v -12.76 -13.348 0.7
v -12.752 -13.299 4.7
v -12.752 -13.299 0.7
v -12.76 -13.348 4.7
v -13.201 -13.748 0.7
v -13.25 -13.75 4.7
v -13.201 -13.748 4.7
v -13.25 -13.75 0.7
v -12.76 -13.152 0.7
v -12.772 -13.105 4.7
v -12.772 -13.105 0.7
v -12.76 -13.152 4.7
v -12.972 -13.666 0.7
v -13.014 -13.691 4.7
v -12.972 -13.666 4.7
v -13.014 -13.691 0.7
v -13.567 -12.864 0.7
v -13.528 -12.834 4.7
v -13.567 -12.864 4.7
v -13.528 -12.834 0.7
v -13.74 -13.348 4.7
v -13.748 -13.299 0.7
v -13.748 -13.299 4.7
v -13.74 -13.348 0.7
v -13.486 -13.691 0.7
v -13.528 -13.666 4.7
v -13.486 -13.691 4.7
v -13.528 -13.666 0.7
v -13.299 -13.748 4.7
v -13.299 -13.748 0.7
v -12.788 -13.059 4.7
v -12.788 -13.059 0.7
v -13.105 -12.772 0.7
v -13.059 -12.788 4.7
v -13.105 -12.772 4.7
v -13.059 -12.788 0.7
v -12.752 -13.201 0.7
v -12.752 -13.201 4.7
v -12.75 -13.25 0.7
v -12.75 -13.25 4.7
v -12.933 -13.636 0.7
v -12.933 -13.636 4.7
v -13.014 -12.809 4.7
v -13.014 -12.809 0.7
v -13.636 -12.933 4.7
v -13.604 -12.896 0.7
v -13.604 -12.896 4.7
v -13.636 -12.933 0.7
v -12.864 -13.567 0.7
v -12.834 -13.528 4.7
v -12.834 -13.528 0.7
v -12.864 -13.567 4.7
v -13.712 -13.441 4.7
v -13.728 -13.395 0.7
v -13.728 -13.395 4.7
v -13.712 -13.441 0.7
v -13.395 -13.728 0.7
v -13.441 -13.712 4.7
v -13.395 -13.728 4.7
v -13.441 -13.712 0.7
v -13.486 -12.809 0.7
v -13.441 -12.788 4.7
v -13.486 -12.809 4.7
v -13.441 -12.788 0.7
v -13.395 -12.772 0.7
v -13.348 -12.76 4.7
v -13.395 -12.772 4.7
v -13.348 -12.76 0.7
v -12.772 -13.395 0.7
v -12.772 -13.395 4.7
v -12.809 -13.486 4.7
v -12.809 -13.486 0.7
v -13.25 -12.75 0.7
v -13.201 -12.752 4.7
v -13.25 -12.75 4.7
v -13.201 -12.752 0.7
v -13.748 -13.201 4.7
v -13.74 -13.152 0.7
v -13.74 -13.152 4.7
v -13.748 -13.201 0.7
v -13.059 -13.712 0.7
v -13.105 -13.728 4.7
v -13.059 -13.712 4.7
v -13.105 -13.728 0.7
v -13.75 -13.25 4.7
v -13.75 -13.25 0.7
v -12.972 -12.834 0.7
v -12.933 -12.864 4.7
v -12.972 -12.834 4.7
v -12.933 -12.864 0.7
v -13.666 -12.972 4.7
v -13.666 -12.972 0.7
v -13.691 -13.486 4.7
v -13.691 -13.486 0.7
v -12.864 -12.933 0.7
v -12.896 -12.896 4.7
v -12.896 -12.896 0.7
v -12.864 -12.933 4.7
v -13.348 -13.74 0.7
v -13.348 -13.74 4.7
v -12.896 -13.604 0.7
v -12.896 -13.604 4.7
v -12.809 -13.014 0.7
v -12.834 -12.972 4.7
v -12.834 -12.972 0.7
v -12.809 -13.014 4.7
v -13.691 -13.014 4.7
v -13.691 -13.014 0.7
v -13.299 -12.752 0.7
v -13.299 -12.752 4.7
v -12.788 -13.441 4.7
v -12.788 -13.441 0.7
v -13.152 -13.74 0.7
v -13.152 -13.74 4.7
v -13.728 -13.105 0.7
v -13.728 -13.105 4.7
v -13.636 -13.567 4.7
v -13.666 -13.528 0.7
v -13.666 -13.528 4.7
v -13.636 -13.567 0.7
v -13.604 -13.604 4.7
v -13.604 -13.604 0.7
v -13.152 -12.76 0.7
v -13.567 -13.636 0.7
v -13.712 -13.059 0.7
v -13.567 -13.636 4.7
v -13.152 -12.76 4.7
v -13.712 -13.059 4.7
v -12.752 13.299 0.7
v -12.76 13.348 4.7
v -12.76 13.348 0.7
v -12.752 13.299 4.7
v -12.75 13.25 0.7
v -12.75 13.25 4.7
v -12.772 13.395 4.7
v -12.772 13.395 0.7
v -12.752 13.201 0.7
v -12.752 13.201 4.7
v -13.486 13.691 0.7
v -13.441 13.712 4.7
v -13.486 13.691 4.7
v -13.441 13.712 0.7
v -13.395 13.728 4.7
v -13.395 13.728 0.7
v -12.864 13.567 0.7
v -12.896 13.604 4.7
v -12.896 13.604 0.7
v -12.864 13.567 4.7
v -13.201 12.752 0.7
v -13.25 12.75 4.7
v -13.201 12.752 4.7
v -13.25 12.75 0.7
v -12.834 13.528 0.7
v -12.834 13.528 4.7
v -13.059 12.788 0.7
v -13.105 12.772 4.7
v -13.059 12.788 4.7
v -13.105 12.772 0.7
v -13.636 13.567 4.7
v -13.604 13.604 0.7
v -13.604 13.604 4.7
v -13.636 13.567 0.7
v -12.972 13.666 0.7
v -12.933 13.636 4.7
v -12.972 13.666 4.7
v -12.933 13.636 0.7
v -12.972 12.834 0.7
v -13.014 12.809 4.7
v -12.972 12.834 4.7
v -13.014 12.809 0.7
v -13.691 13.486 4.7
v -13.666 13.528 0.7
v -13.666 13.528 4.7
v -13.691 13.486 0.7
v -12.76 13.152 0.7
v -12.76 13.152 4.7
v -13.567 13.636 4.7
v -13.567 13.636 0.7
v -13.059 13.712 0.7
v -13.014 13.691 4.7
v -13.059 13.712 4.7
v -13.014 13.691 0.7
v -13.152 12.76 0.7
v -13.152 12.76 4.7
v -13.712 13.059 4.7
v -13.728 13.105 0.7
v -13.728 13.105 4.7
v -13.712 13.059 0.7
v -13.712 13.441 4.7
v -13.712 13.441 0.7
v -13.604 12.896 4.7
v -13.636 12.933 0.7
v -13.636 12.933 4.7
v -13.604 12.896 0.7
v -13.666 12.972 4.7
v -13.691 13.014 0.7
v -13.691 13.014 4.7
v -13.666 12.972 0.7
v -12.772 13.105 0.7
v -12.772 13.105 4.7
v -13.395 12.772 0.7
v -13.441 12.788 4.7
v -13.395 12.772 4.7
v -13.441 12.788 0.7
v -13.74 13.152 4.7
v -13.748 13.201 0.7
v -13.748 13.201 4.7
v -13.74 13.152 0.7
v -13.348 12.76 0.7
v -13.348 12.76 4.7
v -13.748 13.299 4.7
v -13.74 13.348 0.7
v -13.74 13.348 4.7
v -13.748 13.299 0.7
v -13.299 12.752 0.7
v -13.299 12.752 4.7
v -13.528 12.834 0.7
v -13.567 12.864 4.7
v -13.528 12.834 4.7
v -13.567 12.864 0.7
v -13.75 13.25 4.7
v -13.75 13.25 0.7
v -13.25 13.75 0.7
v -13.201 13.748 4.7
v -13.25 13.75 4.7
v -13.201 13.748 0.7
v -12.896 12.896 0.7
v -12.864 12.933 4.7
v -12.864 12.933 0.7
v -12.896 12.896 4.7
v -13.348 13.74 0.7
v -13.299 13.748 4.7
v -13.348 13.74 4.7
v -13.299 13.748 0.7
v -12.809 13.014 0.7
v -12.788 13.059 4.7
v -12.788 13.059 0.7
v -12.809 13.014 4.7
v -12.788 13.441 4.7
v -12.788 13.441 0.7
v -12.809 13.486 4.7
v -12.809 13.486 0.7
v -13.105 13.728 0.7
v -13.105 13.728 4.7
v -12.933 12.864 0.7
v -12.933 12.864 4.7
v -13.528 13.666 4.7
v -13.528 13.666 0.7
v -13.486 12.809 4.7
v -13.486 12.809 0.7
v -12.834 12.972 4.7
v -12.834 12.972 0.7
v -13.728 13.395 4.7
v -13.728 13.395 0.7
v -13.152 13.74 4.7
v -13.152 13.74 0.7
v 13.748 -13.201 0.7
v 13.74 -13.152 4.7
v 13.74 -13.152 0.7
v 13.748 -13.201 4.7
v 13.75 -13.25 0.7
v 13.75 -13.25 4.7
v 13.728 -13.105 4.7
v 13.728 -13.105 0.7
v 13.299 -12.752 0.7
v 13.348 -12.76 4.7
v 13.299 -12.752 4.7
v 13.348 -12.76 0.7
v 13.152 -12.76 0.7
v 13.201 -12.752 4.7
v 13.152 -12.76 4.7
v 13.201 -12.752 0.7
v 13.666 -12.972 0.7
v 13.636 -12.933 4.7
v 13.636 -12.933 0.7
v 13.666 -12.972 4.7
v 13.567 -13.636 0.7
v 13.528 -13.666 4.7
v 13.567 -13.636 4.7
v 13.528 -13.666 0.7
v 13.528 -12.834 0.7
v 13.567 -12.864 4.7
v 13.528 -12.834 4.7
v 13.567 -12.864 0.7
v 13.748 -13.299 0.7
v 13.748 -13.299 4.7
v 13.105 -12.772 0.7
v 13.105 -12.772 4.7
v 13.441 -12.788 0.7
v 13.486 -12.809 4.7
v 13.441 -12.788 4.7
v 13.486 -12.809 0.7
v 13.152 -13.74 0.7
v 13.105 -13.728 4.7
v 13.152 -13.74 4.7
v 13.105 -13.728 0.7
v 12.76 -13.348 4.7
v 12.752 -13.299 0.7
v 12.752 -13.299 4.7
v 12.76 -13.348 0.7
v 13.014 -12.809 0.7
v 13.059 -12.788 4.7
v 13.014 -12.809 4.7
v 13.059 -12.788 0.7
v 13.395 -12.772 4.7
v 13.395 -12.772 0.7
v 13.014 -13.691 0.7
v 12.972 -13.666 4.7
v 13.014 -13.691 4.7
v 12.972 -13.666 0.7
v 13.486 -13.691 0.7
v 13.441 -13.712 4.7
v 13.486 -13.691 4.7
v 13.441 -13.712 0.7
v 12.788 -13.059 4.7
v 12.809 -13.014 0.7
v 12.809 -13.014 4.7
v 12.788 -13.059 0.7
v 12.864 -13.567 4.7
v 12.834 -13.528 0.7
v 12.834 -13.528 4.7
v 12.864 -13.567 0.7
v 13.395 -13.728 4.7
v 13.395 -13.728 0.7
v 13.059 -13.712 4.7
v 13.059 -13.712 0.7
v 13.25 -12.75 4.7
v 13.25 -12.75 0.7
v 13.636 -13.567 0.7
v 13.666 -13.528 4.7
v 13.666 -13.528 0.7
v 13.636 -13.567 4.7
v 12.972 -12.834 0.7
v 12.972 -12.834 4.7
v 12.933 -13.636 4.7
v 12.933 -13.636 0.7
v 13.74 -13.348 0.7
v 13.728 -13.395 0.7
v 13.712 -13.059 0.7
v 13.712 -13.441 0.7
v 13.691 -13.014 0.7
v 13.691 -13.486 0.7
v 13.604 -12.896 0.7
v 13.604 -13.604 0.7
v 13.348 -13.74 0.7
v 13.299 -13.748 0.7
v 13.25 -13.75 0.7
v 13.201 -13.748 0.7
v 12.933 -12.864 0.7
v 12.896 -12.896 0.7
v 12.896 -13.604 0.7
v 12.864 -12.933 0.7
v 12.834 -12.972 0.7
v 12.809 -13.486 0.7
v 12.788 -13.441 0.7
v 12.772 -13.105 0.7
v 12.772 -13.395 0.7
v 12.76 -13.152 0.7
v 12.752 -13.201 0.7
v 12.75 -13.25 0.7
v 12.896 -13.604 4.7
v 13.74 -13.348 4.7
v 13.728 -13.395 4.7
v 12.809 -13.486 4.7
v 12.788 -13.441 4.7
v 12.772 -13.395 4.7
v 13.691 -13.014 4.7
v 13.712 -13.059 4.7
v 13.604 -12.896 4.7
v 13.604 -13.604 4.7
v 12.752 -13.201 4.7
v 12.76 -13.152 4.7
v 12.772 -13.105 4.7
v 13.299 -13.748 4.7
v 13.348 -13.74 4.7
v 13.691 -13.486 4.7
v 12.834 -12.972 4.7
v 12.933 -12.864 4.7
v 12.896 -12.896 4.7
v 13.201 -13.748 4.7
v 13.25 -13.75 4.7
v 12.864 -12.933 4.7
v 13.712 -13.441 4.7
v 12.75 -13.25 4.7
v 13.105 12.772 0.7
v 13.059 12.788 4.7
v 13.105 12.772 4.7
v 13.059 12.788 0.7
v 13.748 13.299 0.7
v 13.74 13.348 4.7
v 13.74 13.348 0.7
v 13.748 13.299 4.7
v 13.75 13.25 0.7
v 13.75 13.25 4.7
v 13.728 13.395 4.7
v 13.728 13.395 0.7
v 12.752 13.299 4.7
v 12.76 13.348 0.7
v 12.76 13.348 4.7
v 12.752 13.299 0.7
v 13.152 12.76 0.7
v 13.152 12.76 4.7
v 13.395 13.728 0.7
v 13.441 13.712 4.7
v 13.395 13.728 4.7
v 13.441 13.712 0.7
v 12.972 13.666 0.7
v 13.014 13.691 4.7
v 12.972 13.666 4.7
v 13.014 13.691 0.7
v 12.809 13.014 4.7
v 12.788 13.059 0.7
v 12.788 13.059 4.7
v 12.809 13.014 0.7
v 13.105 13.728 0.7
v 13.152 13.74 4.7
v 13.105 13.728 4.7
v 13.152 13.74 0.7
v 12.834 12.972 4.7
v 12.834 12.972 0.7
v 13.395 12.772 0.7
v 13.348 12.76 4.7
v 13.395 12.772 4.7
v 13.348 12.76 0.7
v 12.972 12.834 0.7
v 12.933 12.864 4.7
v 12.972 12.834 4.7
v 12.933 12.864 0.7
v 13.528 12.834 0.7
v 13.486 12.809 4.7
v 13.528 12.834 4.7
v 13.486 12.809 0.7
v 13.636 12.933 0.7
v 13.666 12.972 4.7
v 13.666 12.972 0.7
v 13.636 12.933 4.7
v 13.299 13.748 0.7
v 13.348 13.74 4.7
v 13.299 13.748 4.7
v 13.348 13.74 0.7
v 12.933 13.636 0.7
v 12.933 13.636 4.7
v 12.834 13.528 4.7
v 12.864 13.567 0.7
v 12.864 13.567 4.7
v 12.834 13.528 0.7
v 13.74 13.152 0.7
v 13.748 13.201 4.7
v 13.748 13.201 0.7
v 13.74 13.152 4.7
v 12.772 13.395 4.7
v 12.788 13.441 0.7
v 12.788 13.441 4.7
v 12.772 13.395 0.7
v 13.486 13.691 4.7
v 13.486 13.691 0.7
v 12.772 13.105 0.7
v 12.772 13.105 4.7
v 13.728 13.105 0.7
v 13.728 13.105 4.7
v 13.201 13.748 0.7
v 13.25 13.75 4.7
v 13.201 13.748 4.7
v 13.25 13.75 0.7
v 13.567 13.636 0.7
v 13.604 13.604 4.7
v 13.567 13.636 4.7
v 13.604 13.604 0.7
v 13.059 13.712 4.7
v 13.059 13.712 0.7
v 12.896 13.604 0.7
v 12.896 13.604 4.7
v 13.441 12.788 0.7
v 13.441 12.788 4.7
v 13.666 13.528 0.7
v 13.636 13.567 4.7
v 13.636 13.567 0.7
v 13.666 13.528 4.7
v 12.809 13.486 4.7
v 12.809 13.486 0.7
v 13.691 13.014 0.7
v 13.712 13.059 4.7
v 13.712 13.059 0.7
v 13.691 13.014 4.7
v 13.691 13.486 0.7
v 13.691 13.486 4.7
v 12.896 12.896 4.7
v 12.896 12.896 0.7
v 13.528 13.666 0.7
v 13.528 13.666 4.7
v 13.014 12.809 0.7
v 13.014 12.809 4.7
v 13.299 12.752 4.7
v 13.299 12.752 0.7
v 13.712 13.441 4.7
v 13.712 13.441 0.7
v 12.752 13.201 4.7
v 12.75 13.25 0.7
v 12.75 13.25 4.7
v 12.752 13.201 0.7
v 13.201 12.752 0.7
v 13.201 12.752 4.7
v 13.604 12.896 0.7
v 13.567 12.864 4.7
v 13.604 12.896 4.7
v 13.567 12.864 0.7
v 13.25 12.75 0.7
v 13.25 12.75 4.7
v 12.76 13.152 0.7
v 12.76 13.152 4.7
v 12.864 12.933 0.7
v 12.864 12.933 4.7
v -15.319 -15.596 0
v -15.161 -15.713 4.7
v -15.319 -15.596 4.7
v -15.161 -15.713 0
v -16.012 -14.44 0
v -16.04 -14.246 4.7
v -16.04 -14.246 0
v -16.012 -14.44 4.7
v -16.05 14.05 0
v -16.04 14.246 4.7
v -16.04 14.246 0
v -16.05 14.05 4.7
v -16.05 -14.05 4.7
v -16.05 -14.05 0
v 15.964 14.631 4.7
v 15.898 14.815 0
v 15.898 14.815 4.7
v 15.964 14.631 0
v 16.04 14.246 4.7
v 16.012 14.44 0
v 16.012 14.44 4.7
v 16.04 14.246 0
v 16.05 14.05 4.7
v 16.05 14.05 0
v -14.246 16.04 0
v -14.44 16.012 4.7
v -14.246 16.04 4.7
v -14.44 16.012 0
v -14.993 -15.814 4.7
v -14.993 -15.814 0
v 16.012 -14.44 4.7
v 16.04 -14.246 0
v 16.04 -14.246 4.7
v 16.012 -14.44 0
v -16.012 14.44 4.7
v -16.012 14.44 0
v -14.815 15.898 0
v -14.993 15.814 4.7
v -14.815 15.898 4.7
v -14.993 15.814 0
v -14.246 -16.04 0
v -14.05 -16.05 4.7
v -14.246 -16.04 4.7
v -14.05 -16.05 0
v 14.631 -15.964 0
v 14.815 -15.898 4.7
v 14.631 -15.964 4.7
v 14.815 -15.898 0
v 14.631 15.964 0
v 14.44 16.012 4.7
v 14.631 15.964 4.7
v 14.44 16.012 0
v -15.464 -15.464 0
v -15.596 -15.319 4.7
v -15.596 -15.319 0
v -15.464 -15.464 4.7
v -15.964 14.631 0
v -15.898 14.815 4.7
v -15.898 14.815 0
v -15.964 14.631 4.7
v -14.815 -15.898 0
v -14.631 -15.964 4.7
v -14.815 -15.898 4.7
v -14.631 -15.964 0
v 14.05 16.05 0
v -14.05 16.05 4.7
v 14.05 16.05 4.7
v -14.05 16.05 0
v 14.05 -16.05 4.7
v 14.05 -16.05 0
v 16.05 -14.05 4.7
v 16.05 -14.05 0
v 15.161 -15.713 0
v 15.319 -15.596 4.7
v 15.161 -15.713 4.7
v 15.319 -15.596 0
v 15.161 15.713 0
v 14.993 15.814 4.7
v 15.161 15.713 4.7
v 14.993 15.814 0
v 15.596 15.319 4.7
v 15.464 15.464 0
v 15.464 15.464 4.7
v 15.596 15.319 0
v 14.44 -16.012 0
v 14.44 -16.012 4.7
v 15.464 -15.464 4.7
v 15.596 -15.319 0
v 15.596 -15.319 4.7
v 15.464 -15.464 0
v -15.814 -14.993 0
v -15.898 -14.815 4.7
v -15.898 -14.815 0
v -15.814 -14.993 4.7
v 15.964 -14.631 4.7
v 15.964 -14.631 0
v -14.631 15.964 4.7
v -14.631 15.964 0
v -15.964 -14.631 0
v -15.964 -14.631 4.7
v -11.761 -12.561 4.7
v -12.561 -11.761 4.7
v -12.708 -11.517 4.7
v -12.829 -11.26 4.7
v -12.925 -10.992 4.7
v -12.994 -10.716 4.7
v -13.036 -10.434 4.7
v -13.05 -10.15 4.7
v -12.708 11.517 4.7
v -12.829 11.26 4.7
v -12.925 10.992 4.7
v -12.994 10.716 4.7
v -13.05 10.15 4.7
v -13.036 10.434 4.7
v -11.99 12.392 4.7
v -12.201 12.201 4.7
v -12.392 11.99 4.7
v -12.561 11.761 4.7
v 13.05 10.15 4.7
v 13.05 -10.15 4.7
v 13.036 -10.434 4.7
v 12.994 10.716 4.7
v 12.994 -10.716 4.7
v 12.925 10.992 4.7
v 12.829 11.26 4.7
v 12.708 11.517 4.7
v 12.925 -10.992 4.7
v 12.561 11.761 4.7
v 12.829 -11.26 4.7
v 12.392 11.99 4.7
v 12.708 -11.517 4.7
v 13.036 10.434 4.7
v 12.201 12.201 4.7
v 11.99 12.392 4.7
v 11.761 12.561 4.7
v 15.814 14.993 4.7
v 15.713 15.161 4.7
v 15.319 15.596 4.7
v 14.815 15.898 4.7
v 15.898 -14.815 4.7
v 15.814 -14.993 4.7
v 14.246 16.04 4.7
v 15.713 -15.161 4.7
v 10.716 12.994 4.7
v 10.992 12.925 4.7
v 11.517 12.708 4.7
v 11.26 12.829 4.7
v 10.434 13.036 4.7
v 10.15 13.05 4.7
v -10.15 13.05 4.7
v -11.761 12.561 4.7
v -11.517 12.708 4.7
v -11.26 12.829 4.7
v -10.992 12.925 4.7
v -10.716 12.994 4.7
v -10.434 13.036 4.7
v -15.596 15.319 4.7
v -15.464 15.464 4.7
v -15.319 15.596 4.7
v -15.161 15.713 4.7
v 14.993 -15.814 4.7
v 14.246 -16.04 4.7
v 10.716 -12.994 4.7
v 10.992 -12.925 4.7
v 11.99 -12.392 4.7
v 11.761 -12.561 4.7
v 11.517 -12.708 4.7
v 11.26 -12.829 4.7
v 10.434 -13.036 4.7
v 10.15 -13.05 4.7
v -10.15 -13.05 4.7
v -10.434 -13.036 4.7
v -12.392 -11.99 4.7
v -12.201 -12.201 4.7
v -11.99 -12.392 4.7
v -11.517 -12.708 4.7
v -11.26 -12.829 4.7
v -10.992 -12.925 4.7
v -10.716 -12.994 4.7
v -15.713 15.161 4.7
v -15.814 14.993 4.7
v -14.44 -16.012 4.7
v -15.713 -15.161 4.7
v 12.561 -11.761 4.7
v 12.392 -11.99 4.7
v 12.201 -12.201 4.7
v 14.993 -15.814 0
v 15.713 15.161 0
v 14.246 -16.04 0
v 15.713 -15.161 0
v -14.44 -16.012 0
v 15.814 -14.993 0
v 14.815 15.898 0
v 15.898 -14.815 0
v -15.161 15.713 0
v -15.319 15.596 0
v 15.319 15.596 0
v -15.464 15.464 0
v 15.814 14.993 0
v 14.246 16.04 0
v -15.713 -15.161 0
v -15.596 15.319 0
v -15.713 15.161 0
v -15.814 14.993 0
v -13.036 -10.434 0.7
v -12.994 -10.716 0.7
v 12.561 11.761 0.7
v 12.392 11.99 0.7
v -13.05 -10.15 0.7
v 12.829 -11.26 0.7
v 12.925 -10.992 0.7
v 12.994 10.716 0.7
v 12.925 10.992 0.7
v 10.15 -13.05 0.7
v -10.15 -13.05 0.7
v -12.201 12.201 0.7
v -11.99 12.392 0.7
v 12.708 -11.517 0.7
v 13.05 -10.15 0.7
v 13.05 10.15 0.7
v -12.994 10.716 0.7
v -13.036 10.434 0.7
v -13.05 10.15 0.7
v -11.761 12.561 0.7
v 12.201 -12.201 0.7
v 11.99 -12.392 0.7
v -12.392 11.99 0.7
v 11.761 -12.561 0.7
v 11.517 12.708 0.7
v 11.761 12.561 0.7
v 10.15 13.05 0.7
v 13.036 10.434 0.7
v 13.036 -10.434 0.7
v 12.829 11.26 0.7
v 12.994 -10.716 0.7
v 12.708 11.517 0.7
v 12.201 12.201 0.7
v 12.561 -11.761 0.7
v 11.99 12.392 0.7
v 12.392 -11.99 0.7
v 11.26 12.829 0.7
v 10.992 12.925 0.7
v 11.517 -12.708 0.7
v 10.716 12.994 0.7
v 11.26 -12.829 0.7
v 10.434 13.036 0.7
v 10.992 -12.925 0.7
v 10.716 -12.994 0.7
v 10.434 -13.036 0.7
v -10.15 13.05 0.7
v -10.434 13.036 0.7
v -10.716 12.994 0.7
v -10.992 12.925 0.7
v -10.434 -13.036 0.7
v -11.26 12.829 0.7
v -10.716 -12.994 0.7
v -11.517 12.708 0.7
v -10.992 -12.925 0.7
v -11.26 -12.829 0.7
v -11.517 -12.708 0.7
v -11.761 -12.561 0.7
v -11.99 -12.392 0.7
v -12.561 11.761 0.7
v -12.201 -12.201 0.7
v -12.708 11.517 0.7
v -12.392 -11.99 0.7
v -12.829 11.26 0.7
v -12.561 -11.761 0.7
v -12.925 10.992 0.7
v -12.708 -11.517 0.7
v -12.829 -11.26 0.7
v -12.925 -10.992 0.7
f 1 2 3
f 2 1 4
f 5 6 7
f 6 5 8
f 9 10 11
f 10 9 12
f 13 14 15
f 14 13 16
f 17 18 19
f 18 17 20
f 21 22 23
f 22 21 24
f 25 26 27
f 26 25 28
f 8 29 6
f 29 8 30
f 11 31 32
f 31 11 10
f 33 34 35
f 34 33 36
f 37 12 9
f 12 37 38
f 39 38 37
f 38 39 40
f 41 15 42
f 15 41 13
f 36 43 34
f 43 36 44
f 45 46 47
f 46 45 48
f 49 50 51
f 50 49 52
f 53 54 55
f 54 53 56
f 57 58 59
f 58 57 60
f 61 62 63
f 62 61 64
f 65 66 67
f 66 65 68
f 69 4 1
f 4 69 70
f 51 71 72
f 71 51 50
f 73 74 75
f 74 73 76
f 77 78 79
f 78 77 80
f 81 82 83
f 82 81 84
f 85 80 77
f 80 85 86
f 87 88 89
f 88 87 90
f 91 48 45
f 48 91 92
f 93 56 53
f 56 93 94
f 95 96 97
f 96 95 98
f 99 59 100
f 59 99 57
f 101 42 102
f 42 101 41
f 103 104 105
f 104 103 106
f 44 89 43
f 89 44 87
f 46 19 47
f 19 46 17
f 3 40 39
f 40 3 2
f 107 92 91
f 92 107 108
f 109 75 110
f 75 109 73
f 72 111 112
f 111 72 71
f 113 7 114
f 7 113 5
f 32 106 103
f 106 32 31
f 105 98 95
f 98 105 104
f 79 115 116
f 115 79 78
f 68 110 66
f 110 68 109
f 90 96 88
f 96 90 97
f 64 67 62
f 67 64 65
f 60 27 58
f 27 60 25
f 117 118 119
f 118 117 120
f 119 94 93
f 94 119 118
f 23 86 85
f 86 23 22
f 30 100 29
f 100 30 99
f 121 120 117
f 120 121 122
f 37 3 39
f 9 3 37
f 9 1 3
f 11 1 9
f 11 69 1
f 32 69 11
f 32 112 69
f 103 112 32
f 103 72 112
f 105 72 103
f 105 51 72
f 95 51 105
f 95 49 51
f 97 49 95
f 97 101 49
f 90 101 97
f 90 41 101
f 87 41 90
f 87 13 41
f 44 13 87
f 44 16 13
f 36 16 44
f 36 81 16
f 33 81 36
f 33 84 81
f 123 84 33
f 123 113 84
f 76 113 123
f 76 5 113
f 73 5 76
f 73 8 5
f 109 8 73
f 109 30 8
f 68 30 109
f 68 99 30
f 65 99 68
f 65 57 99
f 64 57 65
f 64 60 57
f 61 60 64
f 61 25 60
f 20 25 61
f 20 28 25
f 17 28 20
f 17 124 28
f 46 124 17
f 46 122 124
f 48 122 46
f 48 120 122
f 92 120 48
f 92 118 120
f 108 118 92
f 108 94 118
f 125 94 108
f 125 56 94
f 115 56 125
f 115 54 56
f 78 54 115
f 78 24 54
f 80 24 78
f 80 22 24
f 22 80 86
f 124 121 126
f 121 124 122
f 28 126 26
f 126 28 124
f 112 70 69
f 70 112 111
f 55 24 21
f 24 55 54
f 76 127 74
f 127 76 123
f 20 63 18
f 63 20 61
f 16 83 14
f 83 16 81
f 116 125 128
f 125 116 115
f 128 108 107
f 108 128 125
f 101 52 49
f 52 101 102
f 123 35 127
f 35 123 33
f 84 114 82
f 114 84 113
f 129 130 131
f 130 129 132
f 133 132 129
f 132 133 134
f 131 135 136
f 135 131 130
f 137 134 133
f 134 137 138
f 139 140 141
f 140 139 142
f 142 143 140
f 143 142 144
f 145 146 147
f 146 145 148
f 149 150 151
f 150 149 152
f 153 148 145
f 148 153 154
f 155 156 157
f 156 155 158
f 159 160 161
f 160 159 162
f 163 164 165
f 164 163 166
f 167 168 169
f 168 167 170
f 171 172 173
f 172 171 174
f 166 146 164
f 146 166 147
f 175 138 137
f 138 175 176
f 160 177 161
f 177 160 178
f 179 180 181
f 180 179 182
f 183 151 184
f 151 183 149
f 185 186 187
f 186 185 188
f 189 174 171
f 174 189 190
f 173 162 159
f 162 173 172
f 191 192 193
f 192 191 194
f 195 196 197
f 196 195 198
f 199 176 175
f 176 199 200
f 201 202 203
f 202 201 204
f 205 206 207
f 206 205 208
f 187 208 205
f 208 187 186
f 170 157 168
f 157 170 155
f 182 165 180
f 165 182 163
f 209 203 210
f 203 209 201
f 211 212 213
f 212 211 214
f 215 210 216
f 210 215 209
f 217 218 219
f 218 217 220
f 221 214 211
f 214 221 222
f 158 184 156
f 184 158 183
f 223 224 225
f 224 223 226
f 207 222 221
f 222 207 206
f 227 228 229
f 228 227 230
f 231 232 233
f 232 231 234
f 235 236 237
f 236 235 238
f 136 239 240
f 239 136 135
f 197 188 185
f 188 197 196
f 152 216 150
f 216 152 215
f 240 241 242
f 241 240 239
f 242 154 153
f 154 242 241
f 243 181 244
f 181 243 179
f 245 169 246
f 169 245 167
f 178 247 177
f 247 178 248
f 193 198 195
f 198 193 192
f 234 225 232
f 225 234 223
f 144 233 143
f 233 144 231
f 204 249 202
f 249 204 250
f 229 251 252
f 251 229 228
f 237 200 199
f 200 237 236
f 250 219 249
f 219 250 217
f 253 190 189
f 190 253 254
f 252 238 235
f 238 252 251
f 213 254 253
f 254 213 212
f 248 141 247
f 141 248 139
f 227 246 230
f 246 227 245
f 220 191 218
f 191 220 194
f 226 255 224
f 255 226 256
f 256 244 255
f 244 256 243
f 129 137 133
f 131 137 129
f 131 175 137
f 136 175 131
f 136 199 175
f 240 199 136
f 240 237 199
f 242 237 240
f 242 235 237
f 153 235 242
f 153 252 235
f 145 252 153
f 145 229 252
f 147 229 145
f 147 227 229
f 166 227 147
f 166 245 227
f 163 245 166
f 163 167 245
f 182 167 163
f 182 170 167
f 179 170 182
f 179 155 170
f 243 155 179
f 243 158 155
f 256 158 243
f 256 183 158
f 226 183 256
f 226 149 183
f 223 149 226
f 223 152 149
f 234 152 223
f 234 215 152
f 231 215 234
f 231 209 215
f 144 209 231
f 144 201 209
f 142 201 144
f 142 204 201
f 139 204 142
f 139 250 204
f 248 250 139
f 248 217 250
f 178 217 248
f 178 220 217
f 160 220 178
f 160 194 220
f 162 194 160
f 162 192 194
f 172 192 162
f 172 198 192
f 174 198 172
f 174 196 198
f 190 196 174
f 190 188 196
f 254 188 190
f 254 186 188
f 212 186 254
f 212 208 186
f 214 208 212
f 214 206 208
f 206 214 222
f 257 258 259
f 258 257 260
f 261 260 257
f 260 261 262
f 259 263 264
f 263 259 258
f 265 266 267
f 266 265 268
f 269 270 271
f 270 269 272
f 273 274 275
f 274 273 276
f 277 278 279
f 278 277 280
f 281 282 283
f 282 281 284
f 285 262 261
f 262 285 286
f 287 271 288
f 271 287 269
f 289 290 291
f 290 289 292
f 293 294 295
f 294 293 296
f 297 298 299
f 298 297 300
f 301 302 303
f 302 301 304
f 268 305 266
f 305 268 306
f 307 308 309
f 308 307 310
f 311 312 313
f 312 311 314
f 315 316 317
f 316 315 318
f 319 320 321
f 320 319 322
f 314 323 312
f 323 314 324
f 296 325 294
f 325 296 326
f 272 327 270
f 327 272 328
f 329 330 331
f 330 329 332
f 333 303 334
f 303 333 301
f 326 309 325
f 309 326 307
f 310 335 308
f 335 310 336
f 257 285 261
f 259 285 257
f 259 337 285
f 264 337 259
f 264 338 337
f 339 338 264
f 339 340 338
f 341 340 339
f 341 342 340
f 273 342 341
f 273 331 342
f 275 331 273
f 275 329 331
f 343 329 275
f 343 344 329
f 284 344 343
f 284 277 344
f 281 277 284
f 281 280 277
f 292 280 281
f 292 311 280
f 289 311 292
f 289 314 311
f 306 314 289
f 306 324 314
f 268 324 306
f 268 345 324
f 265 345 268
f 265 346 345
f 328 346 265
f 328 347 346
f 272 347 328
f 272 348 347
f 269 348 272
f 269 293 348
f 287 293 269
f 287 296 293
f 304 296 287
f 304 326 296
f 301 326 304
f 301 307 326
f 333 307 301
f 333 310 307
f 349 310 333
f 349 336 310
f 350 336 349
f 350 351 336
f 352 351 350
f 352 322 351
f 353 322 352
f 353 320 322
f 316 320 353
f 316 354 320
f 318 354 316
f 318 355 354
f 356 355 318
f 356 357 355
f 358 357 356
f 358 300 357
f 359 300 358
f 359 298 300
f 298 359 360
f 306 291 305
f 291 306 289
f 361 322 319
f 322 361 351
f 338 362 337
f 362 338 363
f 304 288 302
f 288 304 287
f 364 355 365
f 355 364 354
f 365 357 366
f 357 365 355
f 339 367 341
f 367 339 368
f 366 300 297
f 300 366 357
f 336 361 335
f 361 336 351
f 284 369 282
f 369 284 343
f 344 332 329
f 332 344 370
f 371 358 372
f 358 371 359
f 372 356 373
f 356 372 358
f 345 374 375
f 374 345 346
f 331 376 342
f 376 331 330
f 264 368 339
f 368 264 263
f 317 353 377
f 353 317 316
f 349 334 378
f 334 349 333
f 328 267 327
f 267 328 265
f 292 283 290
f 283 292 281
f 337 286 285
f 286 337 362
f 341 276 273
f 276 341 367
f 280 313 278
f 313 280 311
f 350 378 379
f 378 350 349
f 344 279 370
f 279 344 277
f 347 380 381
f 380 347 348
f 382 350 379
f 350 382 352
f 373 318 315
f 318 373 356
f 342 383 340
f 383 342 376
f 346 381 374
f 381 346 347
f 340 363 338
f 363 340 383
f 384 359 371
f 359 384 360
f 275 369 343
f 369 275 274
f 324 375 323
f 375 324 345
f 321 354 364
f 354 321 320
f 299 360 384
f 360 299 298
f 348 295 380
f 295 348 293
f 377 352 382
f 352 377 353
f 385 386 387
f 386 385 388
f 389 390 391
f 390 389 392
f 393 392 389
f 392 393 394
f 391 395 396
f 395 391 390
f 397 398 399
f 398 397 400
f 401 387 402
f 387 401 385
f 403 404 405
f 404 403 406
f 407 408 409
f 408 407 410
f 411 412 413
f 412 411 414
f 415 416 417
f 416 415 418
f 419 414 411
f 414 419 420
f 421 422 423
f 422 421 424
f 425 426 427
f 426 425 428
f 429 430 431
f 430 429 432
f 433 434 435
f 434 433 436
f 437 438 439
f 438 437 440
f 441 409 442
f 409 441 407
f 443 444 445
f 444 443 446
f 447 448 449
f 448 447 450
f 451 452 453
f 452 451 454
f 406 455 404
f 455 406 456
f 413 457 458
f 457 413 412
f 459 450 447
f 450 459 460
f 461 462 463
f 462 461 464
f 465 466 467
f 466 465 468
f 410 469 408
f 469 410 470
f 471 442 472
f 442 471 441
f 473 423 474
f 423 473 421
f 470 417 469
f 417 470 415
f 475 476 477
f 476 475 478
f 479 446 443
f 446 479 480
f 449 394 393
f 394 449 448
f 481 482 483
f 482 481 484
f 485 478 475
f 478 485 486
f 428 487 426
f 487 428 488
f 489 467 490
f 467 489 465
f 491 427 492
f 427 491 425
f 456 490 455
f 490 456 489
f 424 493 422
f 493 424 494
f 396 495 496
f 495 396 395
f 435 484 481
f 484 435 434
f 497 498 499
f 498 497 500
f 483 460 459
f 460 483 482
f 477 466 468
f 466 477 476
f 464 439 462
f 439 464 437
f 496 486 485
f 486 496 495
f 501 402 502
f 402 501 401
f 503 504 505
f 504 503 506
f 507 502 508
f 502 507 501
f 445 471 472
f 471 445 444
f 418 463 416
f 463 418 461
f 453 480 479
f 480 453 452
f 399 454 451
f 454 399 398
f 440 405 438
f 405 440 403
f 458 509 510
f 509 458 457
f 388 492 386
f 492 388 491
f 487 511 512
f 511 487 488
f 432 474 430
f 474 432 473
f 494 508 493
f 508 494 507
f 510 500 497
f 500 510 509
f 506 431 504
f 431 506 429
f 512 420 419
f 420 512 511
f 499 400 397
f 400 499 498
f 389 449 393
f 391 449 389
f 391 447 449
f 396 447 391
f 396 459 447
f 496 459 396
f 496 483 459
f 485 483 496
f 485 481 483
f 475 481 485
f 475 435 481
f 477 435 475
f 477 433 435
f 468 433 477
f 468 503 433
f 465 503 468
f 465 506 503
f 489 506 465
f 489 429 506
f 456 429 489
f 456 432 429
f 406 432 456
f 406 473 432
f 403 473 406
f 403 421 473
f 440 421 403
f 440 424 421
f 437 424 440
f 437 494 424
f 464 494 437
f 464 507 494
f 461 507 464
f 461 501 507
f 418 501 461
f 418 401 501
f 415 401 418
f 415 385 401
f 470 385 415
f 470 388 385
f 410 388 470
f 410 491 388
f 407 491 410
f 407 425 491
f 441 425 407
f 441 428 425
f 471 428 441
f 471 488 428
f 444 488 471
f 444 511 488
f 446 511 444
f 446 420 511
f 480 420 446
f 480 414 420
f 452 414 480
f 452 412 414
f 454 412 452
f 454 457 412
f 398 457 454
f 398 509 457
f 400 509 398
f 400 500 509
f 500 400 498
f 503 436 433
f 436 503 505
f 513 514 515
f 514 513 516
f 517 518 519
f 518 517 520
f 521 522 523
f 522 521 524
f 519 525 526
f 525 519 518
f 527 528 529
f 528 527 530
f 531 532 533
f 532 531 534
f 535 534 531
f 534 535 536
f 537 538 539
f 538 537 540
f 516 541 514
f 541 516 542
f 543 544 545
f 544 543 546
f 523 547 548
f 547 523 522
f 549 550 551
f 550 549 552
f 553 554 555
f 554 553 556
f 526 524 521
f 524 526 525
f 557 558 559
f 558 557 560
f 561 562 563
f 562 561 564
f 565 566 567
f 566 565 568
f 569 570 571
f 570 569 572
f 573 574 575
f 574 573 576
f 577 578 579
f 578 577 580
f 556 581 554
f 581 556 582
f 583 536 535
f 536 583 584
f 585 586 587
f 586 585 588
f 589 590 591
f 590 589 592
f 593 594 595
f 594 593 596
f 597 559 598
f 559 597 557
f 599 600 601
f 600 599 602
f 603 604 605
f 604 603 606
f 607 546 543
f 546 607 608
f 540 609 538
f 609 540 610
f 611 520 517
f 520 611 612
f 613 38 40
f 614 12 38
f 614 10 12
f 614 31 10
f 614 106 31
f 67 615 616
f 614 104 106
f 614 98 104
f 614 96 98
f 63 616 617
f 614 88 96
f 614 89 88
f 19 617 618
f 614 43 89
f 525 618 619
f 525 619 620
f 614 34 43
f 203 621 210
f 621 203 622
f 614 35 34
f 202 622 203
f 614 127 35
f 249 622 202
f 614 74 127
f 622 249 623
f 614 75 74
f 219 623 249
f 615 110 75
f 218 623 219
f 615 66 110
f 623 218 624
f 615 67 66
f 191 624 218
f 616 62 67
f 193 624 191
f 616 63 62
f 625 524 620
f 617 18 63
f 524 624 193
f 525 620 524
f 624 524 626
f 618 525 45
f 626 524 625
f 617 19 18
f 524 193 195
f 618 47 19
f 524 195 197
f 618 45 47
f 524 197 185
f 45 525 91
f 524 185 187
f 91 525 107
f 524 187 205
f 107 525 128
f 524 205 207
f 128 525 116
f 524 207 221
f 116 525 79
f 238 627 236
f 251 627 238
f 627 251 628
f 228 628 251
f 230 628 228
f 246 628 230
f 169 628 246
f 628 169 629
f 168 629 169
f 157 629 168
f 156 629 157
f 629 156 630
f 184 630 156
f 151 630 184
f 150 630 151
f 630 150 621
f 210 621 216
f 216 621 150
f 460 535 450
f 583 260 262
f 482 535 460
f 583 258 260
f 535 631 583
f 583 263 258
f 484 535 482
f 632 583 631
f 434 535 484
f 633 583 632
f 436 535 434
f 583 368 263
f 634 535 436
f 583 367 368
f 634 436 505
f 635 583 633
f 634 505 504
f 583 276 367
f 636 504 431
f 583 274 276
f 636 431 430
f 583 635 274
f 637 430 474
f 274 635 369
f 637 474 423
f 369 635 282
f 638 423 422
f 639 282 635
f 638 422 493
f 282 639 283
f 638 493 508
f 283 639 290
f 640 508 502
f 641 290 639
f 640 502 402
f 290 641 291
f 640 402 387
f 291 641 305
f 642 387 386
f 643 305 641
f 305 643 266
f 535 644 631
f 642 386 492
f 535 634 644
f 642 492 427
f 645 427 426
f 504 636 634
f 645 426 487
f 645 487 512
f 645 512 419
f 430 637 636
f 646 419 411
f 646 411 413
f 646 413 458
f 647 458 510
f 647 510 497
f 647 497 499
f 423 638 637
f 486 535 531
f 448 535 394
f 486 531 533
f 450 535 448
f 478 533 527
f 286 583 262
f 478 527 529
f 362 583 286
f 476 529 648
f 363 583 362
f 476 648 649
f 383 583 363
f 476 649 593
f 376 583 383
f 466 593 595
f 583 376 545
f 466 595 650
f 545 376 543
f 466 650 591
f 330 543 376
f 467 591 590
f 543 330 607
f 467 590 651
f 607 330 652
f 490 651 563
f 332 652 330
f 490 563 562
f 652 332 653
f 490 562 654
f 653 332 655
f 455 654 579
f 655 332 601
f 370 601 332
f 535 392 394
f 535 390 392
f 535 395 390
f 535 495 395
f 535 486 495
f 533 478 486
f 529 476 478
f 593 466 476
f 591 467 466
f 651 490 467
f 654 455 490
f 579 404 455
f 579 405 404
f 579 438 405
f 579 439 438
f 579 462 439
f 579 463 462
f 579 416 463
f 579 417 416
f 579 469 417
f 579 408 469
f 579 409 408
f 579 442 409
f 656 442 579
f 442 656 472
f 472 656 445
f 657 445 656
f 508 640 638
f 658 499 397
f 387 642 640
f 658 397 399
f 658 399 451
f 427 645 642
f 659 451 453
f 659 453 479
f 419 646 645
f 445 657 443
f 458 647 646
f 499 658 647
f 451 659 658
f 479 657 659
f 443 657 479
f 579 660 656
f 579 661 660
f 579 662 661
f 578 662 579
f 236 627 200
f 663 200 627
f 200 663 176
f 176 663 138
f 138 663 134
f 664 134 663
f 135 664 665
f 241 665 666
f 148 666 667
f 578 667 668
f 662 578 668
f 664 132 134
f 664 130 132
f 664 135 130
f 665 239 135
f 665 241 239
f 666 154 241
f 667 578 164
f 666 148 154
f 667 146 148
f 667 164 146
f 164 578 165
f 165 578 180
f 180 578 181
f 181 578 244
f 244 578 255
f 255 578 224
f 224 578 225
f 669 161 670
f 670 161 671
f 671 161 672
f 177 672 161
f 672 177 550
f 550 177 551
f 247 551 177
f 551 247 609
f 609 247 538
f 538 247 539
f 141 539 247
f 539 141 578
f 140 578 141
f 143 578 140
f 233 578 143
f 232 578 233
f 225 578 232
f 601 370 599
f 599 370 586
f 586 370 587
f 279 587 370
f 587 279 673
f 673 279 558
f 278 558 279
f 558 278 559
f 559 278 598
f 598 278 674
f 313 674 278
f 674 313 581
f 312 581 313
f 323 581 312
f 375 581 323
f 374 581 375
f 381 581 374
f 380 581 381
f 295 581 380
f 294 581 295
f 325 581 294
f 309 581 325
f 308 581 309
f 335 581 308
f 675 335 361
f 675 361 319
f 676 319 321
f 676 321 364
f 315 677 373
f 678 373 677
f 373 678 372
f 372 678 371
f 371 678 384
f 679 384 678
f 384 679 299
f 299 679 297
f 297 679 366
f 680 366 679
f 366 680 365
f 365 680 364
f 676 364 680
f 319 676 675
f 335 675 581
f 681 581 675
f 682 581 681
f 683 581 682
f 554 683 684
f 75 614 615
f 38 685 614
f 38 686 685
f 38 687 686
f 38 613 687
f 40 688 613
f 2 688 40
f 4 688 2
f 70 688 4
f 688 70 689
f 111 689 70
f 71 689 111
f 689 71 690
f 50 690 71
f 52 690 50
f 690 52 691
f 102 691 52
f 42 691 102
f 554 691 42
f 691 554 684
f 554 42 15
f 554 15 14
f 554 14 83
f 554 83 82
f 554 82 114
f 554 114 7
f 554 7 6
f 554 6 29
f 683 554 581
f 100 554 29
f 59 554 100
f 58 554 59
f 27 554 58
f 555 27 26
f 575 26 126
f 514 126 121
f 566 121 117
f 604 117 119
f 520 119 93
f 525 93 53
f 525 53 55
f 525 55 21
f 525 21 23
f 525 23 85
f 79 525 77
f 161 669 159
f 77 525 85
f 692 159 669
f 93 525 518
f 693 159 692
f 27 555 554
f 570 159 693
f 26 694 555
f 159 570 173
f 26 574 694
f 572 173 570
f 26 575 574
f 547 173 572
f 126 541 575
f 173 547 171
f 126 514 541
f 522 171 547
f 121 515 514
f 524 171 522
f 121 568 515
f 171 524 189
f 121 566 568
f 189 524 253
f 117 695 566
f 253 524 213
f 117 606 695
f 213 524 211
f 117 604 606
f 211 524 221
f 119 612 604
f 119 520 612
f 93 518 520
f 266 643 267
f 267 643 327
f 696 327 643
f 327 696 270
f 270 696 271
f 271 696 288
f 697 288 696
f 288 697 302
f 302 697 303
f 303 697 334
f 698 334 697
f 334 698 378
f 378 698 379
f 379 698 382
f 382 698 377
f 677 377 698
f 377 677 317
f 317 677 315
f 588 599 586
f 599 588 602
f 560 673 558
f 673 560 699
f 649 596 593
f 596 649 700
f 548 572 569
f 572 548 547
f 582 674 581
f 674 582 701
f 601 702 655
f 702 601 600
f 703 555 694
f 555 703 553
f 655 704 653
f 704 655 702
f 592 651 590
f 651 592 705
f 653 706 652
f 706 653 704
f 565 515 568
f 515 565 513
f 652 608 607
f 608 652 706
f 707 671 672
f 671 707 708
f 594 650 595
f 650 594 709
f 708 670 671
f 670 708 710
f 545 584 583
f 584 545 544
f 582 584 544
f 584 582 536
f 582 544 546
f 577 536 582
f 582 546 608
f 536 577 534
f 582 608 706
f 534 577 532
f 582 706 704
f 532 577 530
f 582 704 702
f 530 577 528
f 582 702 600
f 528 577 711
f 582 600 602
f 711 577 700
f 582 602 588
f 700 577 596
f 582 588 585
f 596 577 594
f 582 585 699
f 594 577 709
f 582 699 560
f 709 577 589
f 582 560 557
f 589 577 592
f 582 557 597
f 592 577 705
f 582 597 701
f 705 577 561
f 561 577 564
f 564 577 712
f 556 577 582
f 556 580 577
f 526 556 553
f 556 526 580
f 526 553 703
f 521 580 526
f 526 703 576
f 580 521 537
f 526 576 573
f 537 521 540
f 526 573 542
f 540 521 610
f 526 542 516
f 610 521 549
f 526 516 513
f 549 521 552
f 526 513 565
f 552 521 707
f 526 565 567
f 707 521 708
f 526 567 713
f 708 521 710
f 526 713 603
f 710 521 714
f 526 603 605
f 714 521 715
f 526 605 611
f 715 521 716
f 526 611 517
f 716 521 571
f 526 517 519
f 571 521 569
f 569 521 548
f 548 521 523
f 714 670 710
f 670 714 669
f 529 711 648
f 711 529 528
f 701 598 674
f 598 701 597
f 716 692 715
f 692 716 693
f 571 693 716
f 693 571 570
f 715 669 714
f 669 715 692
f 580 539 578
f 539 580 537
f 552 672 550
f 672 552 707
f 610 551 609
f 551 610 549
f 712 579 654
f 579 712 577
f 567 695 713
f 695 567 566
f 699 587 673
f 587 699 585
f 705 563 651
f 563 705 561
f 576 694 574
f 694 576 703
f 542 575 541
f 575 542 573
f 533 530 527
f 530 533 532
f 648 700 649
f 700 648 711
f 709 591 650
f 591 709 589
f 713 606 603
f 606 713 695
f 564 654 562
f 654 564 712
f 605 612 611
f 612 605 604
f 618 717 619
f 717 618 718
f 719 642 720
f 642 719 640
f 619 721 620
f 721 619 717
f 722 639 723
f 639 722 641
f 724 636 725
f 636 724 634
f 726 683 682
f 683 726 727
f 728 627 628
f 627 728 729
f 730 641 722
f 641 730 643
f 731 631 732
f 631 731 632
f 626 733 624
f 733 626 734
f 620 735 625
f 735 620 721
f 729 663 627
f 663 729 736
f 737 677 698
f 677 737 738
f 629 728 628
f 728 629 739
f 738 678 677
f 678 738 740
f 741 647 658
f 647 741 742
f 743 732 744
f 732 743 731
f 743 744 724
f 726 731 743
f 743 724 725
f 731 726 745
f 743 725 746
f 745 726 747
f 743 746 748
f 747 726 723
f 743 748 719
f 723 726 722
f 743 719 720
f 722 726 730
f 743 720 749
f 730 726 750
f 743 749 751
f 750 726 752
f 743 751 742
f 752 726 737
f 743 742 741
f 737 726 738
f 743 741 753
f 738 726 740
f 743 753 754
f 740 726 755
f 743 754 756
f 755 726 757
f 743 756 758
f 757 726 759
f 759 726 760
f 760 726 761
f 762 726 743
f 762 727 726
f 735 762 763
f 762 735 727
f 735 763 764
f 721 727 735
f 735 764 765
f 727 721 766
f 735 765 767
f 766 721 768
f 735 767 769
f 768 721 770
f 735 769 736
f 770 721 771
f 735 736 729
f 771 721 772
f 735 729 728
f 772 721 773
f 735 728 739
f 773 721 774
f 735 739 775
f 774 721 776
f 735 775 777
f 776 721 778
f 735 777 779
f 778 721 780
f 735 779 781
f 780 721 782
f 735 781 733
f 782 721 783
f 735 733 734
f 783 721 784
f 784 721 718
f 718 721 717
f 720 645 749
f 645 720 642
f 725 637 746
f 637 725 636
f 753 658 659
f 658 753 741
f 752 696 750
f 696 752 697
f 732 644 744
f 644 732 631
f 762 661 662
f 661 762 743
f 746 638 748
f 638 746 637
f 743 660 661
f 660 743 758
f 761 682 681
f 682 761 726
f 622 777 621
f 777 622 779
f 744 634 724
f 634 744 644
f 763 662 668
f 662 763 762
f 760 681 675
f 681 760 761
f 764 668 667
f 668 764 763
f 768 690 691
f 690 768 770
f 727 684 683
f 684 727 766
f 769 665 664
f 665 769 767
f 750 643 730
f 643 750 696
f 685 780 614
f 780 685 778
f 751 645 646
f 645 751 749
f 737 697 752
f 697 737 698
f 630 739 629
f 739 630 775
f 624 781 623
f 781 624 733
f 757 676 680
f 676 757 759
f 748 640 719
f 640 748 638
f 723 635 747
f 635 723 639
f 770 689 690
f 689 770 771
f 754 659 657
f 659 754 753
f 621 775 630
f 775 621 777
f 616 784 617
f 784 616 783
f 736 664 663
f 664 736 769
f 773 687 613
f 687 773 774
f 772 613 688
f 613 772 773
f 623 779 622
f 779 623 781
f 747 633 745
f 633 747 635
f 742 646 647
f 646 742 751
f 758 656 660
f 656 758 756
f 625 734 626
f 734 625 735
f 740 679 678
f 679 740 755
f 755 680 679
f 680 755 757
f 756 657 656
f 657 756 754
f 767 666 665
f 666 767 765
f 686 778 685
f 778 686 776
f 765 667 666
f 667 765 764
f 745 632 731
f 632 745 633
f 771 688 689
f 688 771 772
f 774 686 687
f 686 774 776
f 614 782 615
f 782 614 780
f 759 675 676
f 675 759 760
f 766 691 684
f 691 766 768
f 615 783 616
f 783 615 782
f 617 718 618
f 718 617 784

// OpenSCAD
$fn = 64;

tolerance = 0.1;
epsilon = 0.01;

module foreach_corner(offset) {
    for(x = [-1, 1]) {
        for(y = [-1, 1]) {
            translate([offset * x, offset * y, 0])
            children();
        }
    }
}

// Creates a square with rounded corners, centered
module rounded_square(width, radius) {    
    hull() {
        foreach_corner((width / 2) - radius) {
            circle(radius);
        }
    }
}

// Creates a mount over the top of the antenna of the M9N-5883 GPS + Compass module.
// https://www.mateksys.com/?portfolio=m9n-5883
module m9n_5883_mount() {
    board_width = 32.10;
    board_radius = 2;
    
    hole_distance_to_edge = 2.8;
    hole_offset = (board_width / 2) - hole_distance_to_edge;
    hole_diameter = 1.0;
    
    antenna_width = 26.0;
    antenna_radius = 2.9;
    antenna_height = 4.0;
    
    wall_thickness = 0.7;
    
    total_height = antenna_height + wall_thickness;
    
    difference() {
        linear_extrude(total_height)
        rounded_square(board_width, board_radius);
        
        translate([0, 0, wall_thickness])
        linear_extrude(antenna_height + epsilon)
        rounded_square(antenna_width + tolerance, antenna_radius);
        
        translate([0, 0, wall_thickness])        
        foreach_corner(hole_offset) {
            cylinder(antenna_height + epsilon, r = hole_diameter / 2);
        }
    }
}

m9n_5883_mount();
